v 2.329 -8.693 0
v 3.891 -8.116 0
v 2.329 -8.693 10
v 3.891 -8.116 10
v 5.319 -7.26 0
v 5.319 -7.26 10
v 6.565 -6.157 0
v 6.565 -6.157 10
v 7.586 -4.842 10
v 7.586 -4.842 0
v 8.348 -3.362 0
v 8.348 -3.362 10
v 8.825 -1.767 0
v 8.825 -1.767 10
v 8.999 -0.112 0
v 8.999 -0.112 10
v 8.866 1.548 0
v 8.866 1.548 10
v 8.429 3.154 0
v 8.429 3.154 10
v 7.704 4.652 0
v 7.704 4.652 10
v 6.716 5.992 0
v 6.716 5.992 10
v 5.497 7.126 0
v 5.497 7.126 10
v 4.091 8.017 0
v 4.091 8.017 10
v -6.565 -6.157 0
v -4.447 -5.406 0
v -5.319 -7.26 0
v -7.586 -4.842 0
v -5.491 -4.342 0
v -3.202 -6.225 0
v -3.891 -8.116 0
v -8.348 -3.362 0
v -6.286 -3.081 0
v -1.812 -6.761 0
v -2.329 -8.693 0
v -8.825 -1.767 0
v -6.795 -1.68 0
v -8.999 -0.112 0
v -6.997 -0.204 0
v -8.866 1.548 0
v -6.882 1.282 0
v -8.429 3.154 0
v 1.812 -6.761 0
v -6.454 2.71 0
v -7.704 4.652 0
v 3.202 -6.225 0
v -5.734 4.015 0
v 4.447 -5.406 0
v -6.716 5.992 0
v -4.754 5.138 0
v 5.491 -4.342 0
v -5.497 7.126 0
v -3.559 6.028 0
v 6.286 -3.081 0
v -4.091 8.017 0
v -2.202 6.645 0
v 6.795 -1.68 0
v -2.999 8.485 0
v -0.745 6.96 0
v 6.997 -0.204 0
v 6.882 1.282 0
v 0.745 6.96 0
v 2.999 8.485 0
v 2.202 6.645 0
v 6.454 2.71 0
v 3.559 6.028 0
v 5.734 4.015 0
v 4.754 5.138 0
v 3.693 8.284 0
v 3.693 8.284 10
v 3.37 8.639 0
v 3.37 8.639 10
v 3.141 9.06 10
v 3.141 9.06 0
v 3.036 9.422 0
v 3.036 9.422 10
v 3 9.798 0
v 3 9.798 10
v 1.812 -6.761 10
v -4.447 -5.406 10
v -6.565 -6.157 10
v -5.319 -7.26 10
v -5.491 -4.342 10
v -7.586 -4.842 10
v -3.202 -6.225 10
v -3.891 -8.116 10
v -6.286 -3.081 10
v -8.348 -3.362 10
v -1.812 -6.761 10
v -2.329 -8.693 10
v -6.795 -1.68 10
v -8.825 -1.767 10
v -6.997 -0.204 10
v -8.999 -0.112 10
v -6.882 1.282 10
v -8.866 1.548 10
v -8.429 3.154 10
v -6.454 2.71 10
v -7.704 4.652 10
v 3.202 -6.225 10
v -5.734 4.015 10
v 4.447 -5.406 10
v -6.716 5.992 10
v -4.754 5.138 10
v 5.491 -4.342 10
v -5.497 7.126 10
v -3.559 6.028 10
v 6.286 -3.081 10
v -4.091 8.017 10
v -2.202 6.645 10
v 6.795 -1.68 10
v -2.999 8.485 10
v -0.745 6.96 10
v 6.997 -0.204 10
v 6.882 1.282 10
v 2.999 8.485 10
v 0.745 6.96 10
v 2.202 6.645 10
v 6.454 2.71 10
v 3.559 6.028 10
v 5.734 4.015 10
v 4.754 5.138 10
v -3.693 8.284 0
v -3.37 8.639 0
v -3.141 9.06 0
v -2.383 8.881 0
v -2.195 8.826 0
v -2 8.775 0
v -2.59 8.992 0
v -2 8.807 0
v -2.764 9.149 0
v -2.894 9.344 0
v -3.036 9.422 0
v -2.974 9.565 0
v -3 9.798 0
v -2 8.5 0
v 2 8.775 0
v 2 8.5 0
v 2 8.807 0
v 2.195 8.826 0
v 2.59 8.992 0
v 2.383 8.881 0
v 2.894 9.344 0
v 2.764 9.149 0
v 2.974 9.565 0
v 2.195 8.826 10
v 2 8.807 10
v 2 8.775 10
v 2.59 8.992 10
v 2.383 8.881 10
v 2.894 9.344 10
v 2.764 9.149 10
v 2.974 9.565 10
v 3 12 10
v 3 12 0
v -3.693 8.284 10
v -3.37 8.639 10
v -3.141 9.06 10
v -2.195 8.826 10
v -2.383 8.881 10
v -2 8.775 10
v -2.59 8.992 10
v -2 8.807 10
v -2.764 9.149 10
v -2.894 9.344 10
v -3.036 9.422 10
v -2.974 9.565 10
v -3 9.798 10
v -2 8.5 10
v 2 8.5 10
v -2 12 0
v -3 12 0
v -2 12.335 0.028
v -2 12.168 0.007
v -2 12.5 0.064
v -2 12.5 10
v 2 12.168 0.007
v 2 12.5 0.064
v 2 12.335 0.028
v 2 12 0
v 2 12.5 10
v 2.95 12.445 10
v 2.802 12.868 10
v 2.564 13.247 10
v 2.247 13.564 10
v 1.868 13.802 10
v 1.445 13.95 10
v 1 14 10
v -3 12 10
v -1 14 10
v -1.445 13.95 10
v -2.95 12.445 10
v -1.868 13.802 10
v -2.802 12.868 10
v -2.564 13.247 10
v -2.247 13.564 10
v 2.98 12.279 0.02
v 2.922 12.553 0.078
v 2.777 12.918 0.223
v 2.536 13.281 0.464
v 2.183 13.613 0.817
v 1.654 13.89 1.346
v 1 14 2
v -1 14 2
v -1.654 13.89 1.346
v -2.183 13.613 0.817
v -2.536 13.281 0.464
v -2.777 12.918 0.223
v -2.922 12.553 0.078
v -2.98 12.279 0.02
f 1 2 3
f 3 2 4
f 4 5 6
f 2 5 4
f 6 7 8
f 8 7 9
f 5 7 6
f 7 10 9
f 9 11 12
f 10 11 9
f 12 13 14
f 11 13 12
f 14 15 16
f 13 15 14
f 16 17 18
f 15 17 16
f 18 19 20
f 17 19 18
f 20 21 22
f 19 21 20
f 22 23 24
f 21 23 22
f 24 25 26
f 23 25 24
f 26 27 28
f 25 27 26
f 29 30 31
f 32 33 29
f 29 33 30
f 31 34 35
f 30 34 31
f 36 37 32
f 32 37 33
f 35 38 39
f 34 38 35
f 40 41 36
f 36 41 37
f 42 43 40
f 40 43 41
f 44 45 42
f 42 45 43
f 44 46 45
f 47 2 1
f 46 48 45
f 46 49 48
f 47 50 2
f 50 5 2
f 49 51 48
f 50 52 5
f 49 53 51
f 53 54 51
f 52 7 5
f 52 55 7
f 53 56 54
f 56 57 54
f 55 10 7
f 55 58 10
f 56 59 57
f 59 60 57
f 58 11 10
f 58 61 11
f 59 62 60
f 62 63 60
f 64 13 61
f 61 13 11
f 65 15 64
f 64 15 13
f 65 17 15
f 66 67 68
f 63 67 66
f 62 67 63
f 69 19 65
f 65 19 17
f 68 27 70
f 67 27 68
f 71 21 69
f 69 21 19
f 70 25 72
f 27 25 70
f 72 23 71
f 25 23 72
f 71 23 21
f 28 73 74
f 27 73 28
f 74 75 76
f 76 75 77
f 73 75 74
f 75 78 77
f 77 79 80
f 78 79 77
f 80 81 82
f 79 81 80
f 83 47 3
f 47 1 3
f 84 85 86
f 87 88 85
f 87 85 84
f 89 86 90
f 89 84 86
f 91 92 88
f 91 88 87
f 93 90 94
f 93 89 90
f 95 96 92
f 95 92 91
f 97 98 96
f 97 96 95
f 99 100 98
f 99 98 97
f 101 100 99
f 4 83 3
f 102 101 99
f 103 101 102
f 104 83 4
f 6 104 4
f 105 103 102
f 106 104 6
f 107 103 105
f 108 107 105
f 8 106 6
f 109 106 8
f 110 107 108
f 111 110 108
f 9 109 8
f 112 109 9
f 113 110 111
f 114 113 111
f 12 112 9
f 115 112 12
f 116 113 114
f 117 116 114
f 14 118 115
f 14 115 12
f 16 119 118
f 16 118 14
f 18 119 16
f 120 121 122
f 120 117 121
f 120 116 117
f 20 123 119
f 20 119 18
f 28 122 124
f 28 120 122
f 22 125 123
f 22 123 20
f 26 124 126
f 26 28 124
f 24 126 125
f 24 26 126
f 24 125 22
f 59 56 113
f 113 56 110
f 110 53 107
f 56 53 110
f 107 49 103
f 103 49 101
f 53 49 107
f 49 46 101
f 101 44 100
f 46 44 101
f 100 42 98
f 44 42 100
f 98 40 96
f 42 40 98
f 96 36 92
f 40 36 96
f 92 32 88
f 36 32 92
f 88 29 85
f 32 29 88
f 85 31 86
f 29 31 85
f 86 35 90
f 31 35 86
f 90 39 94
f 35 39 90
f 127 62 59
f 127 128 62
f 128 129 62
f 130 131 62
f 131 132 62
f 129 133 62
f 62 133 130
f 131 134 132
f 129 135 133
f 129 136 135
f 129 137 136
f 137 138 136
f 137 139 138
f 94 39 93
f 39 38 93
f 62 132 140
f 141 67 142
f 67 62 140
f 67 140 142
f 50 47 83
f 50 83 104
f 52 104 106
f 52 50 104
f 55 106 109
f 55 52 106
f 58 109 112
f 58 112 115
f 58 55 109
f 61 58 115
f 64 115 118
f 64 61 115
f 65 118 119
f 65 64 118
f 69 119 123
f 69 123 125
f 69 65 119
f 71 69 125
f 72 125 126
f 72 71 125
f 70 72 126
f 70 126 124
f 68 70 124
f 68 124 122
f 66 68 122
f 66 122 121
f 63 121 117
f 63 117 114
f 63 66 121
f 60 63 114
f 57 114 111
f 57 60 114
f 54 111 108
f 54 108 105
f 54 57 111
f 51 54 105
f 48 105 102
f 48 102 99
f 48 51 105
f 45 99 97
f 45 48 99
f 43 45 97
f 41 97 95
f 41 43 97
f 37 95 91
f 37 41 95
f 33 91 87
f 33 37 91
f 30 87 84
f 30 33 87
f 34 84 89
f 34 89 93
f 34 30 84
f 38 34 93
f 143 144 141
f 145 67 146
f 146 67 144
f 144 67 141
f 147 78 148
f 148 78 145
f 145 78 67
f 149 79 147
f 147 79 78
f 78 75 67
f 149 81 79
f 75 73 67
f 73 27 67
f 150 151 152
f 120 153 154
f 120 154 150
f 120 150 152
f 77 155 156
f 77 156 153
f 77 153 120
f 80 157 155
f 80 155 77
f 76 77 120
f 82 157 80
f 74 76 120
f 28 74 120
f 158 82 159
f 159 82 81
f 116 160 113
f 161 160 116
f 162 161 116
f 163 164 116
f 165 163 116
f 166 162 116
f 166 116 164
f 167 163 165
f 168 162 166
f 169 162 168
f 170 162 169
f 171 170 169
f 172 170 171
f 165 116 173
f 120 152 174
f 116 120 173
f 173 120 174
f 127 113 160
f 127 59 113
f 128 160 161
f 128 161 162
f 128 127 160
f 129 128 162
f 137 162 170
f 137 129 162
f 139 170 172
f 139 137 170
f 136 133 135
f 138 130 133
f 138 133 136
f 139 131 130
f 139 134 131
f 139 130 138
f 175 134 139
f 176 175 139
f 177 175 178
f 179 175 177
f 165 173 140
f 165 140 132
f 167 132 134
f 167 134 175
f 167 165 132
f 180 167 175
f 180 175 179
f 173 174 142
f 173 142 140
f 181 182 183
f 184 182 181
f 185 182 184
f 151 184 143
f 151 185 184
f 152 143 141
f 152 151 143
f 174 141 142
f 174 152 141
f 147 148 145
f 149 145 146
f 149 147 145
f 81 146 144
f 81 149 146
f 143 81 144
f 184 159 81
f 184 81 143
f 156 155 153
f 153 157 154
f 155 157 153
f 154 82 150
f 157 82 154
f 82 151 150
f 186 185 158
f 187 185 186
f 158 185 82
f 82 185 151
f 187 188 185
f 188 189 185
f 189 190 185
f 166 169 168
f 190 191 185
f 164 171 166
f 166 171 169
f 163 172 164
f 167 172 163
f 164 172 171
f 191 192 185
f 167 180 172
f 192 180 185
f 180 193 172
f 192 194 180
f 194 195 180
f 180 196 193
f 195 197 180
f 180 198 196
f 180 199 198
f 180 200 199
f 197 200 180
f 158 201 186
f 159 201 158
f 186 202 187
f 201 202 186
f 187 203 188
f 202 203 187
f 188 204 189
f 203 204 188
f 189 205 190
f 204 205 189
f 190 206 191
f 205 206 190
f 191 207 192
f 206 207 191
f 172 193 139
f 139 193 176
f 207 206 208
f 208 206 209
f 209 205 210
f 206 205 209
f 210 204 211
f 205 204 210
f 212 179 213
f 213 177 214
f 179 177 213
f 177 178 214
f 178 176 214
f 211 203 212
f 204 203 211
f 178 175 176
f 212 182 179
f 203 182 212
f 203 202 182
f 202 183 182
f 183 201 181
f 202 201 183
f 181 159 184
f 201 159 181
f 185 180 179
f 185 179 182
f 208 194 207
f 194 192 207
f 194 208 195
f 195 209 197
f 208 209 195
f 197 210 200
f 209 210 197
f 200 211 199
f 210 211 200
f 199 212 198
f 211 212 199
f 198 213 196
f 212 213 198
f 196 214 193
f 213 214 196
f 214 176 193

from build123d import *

# Parameters (mm, degrees)
PAD_DEPTH    = 10
SKETCH001_W  = 6
SKETCH001_H  = 5.514719
PAD001_DEPTH = 10
FILLET_R     = 2
SKETCH002_W  = 4
SKETCH002_H  = 4
POCKET_DEPTH = 10.001


with BuildPart() as part:
    # Sketch → Pad (new body)
    with BuildSketch(Plane.XY):
        with BuildLine():
            ThreePointArc((2.329371, -8.693332), (0, 9), (-2.329371, -8.693332))
            Line((-2.329371, -8.693332), (-1.811733, -6.761481))
            ThreePointArc((1.811733, -6.761481), (0, 7), (-1.811733, -6.761481))
            Line((1.811733, -6.761481), (2.329371, -8.693332))
        make_face()
    extrude(amount=PAD_DEPTH)

    # Sketch001 (on Face6 of Pad) → Pad001 (join)
    with BuildSketch(Plane.XY.offset(10)):
        with Locations((0, 11.242641)):
            Rectangle(SKETCH001_W, SKETCH001_H)
    extrude(amount=-PAD001_DEPTH)

    # Fillet
    fillet_edges = [part.edges().sort_by_distance(p)[0] for p in [
        (-3, 14, 5),
        (0, 14, 0),
        (3, 14, 5),
        (3, 8.485281, 5),
        (-3, 8.485281, 5),
    ]]
    fillet(fillet_edges, radius=FILLET_R)

    # Sketch002 (on Face18 of Fillet) → Pocket (cut, through all)
    with BuildSketch(Plane.XY.offset(10)):
        with Locations((0, 10.5)):
            Rectangle(SKETCH002_W, SKETCH002_H)
    extrude(amount=-POCKET_DEPTH, mode=Mode.SUBTRACT)


solid = part.part
